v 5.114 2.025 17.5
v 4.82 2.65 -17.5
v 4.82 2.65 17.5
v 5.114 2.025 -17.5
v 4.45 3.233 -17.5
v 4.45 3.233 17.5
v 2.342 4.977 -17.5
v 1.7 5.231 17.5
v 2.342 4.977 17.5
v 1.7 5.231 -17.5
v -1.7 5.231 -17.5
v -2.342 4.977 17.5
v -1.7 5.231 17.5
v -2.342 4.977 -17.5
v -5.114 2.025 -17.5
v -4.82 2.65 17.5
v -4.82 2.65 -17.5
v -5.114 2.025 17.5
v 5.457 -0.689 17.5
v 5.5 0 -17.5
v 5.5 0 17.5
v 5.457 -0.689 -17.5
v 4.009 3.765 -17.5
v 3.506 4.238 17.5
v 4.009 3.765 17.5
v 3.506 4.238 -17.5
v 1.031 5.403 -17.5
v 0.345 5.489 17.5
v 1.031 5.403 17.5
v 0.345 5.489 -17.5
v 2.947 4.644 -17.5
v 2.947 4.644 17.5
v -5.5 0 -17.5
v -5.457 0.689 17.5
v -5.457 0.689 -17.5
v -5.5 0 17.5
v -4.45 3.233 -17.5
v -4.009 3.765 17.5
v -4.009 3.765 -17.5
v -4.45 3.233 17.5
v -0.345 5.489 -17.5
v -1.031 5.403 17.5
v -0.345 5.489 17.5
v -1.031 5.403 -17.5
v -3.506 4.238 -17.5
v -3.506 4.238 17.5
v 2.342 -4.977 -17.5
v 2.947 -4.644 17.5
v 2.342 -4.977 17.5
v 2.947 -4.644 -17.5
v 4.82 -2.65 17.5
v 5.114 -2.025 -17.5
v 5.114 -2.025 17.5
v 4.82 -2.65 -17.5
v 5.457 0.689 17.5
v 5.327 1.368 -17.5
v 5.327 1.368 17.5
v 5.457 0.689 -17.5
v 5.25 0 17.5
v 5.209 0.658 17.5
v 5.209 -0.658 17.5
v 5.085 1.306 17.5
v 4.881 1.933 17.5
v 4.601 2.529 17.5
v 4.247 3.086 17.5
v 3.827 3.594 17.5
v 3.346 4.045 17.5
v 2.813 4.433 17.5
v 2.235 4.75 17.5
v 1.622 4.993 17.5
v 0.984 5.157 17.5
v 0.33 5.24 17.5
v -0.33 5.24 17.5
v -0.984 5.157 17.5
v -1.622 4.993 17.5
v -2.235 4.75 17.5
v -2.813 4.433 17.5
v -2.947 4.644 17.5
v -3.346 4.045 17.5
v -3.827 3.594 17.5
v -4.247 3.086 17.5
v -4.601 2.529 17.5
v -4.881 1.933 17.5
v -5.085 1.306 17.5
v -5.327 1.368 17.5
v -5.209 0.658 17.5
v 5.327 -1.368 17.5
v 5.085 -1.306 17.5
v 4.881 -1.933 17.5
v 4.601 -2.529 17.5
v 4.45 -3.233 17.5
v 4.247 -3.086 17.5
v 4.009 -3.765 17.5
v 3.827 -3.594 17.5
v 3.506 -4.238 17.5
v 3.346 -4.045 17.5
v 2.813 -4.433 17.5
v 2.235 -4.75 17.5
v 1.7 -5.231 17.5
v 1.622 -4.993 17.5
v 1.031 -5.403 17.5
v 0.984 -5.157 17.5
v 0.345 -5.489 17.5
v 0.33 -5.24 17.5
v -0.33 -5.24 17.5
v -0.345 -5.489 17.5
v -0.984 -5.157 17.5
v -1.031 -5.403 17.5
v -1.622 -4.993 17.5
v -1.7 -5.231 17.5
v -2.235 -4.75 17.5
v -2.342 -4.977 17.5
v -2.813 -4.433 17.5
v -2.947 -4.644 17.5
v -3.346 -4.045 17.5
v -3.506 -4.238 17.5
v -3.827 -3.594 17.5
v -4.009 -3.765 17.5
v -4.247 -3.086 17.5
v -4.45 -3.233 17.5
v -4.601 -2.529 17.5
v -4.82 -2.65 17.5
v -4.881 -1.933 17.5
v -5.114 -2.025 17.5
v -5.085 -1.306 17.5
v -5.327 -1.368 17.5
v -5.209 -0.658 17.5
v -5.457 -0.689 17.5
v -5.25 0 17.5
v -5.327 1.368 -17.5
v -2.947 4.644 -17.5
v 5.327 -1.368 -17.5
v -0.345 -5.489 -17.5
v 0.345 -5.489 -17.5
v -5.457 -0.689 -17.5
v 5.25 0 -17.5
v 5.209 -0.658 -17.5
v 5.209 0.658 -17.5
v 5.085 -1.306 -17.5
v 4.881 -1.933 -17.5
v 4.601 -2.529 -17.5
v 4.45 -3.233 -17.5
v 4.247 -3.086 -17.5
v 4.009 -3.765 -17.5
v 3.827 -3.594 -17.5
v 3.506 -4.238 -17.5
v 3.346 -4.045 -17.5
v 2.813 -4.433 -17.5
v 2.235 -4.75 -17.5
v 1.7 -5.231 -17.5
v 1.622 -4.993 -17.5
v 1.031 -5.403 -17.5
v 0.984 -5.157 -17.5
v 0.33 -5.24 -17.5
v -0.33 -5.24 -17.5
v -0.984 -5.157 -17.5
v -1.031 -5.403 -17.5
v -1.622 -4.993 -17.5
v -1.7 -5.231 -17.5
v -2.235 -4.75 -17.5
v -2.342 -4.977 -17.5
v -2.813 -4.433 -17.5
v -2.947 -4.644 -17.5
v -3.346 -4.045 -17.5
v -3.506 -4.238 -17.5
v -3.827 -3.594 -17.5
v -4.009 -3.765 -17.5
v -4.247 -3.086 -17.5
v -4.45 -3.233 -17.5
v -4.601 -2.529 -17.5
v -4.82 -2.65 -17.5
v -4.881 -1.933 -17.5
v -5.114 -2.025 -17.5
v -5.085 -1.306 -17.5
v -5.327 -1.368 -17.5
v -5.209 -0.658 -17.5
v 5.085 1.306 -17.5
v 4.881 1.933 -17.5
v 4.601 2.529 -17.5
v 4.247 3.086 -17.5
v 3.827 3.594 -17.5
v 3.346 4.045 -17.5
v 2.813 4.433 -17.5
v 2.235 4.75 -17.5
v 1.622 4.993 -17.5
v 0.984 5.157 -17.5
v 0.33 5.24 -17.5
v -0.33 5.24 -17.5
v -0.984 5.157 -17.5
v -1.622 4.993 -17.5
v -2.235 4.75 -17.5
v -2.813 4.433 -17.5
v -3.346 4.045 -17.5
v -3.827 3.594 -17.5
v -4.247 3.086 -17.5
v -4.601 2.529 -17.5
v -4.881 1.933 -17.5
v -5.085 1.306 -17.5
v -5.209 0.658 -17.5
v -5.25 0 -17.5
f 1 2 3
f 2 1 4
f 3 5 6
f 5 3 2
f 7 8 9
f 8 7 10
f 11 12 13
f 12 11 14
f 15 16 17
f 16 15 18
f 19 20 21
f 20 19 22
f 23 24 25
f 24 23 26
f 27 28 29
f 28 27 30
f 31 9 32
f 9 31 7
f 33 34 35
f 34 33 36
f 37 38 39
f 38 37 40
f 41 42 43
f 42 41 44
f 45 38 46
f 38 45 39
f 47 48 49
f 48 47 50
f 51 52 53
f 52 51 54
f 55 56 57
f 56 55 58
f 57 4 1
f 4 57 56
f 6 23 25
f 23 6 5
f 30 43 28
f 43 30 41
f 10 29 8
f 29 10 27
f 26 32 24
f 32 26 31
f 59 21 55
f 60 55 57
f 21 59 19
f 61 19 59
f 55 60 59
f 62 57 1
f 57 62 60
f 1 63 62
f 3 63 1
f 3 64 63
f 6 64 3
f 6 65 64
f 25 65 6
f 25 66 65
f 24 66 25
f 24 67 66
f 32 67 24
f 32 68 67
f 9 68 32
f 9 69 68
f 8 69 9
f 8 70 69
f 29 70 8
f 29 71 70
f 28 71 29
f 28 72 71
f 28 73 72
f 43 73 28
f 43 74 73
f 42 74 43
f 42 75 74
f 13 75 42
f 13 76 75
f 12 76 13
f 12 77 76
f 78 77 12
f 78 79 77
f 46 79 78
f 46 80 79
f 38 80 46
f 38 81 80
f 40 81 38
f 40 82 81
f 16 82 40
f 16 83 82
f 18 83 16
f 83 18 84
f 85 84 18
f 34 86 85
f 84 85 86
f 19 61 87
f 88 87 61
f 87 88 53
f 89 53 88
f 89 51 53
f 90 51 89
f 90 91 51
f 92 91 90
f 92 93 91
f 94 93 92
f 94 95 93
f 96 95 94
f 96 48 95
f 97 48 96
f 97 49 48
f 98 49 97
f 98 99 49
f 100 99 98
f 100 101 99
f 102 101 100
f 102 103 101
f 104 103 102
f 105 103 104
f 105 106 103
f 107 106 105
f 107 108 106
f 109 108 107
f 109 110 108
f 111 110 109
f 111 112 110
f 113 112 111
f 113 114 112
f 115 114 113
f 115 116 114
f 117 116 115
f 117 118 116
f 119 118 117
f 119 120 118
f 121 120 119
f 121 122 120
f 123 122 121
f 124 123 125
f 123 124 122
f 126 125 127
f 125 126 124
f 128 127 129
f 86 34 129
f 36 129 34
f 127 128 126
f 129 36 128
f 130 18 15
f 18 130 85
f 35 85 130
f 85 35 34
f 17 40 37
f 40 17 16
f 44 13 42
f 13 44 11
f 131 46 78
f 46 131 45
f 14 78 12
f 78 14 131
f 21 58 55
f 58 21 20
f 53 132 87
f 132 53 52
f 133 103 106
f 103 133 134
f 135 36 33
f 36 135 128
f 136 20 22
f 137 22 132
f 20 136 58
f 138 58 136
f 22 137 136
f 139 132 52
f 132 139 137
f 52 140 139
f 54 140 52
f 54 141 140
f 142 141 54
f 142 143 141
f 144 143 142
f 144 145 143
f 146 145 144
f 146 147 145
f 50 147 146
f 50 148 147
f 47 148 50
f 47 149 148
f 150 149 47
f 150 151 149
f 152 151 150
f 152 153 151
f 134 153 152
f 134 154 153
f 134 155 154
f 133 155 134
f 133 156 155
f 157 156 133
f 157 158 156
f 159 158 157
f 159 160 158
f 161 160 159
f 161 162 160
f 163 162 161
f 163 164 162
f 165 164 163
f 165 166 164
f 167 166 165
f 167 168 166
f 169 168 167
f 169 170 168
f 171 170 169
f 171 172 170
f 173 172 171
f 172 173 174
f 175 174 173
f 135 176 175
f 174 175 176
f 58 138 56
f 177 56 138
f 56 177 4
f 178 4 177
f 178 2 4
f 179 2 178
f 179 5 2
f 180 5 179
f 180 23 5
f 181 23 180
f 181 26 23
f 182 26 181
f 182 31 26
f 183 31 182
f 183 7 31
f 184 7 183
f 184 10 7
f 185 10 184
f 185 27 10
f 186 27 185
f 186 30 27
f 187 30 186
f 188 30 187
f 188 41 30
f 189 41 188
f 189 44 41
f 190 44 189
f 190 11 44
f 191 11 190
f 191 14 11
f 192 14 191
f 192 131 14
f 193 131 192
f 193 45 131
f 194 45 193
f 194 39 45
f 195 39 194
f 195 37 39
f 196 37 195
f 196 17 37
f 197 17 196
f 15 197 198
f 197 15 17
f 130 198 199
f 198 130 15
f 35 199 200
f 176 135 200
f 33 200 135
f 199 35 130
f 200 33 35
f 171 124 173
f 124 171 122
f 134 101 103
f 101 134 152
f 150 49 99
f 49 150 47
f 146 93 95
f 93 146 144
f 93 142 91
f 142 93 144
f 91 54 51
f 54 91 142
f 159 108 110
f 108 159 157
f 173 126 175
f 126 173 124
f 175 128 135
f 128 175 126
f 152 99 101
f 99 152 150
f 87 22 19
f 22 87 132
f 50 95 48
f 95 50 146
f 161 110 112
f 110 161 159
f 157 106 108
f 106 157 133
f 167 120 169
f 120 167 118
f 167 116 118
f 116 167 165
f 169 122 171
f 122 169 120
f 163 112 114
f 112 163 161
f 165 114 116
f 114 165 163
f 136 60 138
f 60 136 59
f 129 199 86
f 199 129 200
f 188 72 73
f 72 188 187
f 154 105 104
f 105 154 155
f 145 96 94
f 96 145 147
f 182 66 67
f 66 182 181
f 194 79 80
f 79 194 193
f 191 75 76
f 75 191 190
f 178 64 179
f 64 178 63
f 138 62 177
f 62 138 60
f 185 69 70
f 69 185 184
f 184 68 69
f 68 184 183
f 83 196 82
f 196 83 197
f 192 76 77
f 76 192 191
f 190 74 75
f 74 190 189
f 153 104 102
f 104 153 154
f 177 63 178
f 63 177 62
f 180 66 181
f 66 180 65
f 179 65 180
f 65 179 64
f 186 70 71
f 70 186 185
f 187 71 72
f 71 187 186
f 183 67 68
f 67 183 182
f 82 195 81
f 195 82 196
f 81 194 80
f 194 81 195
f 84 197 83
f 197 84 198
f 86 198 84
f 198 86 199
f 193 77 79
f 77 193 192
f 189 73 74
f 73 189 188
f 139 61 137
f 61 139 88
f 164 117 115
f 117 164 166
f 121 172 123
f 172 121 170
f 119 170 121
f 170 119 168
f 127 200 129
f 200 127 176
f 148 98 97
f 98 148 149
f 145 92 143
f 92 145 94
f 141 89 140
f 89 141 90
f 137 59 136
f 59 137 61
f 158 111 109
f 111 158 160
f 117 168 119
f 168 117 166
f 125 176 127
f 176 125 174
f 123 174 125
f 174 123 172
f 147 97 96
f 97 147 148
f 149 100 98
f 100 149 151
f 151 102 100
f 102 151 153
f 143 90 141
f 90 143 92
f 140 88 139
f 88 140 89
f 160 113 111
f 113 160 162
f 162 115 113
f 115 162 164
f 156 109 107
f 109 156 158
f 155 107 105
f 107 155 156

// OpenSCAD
$fn = 50;


difference() {
	union() {
		translate(v = [0, 0, -17.5000000000]) {
			cylinder(h = 35, r = 5.5000000000);
		}
	}
	union() {
		translate(v = [0, 0, -100.0000000000]) {
			cylinder(h = 200, r = 5.2500000000);
		}
	}
}
